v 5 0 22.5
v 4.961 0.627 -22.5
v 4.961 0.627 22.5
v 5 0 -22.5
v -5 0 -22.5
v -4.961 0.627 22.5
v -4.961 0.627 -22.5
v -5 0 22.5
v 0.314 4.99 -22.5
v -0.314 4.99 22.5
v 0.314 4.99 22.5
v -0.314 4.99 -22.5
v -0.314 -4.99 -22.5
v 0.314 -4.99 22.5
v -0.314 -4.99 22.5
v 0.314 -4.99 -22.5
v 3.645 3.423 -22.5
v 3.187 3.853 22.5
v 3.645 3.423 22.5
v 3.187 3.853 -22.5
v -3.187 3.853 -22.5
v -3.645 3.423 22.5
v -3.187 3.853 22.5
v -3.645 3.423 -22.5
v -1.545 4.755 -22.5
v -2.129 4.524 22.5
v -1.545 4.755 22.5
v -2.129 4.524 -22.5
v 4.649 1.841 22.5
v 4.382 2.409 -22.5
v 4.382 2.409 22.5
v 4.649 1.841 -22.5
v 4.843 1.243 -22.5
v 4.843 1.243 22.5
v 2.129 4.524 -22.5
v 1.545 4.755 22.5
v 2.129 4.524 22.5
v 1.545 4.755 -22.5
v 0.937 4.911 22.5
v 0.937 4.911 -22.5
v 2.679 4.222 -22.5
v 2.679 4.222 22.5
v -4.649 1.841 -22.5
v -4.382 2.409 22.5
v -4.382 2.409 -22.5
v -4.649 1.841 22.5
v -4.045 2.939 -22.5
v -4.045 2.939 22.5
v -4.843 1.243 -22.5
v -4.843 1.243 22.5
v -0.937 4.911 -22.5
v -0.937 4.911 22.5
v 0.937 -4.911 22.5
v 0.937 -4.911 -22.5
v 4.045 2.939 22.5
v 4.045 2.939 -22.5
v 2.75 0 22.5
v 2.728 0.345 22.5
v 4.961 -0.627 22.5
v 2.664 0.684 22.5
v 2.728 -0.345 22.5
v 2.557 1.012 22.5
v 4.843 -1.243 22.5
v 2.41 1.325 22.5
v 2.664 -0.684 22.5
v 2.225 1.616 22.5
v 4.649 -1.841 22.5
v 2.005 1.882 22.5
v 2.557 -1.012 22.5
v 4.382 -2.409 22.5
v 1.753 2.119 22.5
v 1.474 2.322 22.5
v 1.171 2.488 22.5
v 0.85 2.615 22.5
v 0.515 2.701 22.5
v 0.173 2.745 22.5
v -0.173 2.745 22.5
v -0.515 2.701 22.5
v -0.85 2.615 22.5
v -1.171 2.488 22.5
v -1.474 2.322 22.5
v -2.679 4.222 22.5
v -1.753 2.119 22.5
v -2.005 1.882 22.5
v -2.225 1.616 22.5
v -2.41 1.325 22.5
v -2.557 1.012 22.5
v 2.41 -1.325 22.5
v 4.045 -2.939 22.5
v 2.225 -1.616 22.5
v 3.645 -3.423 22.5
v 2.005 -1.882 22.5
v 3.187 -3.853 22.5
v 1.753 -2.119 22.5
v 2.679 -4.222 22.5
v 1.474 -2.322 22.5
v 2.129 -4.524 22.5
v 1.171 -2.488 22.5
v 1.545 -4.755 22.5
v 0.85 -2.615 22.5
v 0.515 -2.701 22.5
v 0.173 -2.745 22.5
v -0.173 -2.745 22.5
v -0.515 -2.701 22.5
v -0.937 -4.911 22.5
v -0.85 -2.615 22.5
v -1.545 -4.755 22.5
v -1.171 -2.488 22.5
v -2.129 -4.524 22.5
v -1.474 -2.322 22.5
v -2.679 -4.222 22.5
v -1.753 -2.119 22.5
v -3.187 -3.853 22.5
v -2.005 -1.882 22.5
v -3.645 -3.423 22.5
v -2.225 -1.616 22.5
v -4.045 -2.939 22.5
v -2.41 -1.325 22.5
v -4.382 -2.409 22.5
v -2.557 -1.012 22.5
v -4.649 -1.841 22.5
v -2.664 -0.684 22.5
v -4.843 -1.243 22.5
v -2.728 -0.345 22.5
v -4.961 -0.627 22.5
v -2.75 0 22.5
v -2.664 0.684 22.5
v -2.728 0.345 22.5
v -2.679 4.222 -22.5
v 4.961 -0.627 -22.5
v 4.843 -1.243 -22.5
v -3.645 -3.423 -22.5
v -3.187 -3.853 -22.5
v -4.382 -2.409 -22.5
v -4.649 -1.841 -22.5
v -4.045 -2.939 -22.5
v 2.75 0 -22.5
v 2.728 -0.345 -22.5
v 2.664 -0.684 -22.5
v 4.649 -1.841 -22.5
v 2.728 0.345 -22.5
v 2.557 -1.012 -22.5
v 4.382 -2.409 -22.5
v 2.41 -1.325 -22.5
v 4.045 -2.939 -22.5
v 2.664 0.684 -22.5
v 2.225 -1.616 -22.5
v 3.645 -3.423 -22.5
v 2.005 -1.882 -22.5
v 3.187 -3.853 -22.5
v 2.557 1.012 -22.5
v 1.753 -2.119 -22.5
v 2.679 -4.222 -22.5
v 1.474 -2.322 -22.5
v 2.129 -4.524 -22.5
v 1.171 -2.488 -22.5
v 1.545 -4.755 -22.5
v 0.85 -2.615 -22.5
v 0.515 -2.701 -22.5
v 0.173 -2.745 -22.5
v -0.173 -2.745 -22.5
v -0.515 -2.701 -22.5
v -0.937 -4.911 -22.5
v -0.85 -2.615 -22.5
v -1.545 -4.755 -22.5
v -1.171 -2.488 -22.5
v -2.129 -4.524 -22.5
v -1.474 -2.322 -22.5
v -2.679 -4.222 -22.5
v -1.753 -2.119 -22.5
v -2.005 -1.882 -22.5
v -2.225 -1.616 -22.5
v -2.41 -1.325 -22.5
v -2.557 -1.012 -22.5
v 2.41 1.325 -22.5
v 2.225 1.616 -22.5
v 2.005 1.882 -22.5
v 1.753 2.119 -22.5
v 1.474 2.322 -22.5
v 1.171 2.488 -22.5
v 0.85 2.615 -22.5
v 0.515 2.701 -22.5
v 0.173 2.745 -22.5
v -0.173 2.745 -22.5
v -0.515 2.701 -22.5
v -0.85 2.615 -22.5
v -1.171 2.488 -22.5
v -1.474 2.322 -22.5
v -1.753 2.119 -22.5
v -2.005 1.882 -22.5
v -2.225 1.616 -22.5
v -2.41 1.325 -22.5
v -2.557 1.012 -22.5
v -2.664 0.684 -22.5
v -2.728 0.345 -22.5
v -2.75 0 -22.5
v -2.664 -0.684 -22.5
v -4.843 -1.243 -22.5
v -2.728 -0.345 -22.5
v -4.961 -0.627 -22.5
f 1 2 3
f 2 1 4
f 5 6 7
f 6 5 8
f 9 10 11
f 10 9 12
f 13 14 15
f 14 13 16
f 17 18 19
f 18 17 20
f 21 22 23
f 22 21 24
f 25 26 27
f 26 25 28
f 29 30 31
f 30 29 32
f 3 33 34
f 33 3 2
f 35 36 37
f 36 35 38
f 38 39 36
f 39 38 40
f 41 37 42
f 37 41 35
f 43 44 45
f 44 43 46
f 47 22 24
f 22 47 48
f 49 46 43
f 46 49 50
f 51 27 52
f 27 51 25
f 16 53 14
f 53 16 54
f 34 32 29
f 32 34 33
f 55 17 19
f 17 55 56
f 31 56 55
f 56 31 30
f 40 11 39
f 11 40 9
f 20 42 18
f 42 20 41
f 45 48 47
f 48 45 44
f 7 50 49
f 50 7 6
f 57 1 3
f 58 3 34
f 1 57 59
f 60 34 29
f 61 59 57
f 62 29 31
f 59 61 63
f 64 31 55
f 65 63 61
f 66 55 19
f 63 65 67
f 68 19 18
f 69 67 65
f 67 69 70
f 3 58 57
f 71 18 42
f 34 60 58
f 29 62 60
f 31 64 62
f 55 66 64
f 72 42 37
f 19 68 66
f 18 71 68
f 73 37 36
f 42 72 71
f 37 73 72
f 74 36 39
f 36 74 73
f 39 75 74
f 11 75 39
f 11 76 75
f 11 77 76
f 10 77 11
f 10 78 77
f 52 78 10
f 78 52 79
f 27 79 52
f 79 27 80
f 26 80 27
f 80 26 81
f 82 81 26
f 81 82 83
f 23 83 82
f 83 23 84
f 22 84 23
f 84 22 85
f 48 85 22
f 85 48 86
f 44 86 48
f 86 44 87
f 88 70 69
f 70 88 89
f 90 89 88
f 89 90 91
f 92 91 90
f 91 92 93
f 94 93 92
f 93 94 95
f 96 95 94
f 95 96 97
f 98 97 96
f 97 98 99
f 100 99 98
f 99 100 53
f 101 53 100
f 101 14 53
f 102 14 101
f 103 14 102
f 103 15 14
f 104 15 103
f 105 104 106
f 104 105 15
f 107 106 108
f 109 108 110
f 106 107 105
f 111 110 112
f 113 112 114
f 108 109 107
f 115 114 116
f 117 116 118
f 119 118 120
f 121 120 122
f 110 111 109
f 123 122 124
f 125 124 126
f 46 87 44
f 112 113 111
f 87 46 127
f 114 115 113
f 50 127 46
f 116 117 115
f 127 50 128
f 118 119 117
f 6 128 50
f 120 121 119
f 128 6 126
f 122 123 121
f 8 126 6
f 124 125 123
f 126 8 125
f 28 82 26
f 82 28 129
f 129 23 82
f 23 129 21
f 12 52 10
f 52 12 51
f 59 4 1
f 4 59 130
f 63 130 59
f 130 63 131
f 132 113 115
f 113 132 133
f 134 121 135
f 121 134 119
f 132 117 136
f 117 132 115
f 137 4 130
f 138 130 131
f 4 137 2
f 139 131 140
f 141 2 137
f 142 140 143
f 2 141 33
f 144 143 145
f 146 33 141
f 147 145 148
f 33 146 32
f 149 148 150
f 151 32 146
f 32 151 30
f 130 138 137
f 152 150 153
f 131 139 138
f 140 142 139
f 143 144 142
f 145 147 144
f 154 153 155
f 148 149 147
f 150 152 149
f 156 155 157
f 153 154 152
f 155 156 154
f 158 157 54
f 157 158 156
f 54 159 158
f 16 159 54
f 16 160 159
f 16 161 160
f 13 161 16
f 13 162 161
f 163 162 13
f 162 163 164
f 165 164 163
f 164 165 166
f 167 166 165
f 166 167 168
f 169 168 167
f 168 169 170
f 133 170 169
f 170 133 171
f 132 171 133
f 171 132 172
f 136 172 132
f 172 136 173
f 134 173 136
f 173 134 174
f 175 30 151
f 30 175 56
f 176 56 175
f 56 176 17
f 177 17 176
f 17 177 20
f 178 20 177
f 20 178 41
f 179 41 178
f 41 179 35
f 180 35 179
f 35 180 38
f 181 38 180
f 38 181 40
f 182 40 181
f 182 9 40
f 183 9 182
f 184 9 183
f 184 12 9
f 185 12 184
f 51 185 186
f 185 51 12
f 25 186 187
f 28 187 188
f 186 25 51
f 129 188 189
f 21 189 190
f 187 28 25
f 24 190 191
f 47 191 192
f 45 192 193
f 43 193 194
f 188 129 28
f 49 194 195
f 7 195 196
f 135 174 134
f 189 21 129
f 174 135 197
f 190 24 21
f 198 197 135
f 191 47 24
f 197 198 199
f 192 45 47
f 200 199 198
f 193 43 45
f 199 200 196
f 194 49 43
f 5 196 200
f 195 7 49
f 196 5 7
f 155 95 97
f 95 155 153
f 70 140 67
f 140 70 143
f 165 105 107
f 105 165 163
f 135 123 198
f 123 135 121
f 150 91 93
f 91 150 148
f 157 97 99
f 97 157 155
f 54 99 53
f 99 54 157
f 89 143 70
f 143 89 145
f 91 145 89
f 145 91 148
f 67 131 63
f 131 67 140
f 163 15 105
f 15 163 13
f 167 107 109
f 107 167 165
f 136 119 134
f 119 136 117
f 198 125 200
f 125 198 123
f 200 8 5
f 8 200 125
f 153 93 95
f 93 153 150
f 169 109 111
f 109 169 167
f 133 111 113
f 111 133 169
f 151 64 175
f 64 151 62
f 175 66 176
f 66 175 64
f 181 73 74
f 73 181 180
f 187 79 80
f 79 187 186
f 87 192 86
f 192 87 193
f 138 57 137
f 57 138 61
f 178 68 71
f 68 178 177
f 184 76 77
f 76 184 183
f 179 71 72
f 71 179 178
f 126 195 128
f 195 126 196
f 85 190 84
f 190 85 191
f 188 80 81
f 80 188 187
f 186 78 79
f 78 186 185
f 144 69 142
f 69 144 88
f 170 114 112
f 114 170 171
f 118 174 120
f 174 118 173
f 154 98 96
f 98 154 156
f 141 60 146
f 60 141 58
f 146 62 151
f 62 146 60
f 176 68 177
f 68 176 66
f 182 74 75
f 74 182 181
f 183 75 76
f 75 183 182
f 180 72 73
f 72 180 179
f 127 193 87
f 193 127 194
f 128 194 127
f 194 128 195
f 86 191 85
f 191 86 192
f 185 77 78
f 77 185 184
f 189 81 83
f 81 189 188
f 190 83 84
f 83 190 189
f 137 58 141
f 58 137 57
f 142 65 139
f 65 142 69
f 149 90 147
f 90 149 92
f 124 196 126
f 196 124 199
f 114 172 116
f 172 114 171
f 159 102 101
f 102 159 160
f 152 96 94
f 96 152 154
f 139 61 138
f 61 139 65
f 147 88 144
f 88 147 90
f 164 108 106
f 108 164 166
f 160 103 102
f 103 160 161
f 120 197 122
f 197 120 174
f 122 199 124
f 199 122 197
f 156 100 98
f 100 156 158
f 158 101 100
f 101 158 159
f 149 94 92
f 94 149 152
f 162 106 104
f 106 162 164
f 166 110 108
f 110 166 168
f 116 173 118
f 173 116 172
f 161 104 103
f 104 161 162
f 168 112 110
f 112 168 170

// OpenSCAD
$fn = 50;


difference() {
	union() {
		translate(v = [0, 0, -22.5000000000]) {
			cylinder(h = 45, r = 5.0000000000);
		}
	}
	union() {
		translate(v = [0, 0, -100.0000000000]) {
			cylinder(h = 200, r = 2.7500000000);
		}
	}
}
